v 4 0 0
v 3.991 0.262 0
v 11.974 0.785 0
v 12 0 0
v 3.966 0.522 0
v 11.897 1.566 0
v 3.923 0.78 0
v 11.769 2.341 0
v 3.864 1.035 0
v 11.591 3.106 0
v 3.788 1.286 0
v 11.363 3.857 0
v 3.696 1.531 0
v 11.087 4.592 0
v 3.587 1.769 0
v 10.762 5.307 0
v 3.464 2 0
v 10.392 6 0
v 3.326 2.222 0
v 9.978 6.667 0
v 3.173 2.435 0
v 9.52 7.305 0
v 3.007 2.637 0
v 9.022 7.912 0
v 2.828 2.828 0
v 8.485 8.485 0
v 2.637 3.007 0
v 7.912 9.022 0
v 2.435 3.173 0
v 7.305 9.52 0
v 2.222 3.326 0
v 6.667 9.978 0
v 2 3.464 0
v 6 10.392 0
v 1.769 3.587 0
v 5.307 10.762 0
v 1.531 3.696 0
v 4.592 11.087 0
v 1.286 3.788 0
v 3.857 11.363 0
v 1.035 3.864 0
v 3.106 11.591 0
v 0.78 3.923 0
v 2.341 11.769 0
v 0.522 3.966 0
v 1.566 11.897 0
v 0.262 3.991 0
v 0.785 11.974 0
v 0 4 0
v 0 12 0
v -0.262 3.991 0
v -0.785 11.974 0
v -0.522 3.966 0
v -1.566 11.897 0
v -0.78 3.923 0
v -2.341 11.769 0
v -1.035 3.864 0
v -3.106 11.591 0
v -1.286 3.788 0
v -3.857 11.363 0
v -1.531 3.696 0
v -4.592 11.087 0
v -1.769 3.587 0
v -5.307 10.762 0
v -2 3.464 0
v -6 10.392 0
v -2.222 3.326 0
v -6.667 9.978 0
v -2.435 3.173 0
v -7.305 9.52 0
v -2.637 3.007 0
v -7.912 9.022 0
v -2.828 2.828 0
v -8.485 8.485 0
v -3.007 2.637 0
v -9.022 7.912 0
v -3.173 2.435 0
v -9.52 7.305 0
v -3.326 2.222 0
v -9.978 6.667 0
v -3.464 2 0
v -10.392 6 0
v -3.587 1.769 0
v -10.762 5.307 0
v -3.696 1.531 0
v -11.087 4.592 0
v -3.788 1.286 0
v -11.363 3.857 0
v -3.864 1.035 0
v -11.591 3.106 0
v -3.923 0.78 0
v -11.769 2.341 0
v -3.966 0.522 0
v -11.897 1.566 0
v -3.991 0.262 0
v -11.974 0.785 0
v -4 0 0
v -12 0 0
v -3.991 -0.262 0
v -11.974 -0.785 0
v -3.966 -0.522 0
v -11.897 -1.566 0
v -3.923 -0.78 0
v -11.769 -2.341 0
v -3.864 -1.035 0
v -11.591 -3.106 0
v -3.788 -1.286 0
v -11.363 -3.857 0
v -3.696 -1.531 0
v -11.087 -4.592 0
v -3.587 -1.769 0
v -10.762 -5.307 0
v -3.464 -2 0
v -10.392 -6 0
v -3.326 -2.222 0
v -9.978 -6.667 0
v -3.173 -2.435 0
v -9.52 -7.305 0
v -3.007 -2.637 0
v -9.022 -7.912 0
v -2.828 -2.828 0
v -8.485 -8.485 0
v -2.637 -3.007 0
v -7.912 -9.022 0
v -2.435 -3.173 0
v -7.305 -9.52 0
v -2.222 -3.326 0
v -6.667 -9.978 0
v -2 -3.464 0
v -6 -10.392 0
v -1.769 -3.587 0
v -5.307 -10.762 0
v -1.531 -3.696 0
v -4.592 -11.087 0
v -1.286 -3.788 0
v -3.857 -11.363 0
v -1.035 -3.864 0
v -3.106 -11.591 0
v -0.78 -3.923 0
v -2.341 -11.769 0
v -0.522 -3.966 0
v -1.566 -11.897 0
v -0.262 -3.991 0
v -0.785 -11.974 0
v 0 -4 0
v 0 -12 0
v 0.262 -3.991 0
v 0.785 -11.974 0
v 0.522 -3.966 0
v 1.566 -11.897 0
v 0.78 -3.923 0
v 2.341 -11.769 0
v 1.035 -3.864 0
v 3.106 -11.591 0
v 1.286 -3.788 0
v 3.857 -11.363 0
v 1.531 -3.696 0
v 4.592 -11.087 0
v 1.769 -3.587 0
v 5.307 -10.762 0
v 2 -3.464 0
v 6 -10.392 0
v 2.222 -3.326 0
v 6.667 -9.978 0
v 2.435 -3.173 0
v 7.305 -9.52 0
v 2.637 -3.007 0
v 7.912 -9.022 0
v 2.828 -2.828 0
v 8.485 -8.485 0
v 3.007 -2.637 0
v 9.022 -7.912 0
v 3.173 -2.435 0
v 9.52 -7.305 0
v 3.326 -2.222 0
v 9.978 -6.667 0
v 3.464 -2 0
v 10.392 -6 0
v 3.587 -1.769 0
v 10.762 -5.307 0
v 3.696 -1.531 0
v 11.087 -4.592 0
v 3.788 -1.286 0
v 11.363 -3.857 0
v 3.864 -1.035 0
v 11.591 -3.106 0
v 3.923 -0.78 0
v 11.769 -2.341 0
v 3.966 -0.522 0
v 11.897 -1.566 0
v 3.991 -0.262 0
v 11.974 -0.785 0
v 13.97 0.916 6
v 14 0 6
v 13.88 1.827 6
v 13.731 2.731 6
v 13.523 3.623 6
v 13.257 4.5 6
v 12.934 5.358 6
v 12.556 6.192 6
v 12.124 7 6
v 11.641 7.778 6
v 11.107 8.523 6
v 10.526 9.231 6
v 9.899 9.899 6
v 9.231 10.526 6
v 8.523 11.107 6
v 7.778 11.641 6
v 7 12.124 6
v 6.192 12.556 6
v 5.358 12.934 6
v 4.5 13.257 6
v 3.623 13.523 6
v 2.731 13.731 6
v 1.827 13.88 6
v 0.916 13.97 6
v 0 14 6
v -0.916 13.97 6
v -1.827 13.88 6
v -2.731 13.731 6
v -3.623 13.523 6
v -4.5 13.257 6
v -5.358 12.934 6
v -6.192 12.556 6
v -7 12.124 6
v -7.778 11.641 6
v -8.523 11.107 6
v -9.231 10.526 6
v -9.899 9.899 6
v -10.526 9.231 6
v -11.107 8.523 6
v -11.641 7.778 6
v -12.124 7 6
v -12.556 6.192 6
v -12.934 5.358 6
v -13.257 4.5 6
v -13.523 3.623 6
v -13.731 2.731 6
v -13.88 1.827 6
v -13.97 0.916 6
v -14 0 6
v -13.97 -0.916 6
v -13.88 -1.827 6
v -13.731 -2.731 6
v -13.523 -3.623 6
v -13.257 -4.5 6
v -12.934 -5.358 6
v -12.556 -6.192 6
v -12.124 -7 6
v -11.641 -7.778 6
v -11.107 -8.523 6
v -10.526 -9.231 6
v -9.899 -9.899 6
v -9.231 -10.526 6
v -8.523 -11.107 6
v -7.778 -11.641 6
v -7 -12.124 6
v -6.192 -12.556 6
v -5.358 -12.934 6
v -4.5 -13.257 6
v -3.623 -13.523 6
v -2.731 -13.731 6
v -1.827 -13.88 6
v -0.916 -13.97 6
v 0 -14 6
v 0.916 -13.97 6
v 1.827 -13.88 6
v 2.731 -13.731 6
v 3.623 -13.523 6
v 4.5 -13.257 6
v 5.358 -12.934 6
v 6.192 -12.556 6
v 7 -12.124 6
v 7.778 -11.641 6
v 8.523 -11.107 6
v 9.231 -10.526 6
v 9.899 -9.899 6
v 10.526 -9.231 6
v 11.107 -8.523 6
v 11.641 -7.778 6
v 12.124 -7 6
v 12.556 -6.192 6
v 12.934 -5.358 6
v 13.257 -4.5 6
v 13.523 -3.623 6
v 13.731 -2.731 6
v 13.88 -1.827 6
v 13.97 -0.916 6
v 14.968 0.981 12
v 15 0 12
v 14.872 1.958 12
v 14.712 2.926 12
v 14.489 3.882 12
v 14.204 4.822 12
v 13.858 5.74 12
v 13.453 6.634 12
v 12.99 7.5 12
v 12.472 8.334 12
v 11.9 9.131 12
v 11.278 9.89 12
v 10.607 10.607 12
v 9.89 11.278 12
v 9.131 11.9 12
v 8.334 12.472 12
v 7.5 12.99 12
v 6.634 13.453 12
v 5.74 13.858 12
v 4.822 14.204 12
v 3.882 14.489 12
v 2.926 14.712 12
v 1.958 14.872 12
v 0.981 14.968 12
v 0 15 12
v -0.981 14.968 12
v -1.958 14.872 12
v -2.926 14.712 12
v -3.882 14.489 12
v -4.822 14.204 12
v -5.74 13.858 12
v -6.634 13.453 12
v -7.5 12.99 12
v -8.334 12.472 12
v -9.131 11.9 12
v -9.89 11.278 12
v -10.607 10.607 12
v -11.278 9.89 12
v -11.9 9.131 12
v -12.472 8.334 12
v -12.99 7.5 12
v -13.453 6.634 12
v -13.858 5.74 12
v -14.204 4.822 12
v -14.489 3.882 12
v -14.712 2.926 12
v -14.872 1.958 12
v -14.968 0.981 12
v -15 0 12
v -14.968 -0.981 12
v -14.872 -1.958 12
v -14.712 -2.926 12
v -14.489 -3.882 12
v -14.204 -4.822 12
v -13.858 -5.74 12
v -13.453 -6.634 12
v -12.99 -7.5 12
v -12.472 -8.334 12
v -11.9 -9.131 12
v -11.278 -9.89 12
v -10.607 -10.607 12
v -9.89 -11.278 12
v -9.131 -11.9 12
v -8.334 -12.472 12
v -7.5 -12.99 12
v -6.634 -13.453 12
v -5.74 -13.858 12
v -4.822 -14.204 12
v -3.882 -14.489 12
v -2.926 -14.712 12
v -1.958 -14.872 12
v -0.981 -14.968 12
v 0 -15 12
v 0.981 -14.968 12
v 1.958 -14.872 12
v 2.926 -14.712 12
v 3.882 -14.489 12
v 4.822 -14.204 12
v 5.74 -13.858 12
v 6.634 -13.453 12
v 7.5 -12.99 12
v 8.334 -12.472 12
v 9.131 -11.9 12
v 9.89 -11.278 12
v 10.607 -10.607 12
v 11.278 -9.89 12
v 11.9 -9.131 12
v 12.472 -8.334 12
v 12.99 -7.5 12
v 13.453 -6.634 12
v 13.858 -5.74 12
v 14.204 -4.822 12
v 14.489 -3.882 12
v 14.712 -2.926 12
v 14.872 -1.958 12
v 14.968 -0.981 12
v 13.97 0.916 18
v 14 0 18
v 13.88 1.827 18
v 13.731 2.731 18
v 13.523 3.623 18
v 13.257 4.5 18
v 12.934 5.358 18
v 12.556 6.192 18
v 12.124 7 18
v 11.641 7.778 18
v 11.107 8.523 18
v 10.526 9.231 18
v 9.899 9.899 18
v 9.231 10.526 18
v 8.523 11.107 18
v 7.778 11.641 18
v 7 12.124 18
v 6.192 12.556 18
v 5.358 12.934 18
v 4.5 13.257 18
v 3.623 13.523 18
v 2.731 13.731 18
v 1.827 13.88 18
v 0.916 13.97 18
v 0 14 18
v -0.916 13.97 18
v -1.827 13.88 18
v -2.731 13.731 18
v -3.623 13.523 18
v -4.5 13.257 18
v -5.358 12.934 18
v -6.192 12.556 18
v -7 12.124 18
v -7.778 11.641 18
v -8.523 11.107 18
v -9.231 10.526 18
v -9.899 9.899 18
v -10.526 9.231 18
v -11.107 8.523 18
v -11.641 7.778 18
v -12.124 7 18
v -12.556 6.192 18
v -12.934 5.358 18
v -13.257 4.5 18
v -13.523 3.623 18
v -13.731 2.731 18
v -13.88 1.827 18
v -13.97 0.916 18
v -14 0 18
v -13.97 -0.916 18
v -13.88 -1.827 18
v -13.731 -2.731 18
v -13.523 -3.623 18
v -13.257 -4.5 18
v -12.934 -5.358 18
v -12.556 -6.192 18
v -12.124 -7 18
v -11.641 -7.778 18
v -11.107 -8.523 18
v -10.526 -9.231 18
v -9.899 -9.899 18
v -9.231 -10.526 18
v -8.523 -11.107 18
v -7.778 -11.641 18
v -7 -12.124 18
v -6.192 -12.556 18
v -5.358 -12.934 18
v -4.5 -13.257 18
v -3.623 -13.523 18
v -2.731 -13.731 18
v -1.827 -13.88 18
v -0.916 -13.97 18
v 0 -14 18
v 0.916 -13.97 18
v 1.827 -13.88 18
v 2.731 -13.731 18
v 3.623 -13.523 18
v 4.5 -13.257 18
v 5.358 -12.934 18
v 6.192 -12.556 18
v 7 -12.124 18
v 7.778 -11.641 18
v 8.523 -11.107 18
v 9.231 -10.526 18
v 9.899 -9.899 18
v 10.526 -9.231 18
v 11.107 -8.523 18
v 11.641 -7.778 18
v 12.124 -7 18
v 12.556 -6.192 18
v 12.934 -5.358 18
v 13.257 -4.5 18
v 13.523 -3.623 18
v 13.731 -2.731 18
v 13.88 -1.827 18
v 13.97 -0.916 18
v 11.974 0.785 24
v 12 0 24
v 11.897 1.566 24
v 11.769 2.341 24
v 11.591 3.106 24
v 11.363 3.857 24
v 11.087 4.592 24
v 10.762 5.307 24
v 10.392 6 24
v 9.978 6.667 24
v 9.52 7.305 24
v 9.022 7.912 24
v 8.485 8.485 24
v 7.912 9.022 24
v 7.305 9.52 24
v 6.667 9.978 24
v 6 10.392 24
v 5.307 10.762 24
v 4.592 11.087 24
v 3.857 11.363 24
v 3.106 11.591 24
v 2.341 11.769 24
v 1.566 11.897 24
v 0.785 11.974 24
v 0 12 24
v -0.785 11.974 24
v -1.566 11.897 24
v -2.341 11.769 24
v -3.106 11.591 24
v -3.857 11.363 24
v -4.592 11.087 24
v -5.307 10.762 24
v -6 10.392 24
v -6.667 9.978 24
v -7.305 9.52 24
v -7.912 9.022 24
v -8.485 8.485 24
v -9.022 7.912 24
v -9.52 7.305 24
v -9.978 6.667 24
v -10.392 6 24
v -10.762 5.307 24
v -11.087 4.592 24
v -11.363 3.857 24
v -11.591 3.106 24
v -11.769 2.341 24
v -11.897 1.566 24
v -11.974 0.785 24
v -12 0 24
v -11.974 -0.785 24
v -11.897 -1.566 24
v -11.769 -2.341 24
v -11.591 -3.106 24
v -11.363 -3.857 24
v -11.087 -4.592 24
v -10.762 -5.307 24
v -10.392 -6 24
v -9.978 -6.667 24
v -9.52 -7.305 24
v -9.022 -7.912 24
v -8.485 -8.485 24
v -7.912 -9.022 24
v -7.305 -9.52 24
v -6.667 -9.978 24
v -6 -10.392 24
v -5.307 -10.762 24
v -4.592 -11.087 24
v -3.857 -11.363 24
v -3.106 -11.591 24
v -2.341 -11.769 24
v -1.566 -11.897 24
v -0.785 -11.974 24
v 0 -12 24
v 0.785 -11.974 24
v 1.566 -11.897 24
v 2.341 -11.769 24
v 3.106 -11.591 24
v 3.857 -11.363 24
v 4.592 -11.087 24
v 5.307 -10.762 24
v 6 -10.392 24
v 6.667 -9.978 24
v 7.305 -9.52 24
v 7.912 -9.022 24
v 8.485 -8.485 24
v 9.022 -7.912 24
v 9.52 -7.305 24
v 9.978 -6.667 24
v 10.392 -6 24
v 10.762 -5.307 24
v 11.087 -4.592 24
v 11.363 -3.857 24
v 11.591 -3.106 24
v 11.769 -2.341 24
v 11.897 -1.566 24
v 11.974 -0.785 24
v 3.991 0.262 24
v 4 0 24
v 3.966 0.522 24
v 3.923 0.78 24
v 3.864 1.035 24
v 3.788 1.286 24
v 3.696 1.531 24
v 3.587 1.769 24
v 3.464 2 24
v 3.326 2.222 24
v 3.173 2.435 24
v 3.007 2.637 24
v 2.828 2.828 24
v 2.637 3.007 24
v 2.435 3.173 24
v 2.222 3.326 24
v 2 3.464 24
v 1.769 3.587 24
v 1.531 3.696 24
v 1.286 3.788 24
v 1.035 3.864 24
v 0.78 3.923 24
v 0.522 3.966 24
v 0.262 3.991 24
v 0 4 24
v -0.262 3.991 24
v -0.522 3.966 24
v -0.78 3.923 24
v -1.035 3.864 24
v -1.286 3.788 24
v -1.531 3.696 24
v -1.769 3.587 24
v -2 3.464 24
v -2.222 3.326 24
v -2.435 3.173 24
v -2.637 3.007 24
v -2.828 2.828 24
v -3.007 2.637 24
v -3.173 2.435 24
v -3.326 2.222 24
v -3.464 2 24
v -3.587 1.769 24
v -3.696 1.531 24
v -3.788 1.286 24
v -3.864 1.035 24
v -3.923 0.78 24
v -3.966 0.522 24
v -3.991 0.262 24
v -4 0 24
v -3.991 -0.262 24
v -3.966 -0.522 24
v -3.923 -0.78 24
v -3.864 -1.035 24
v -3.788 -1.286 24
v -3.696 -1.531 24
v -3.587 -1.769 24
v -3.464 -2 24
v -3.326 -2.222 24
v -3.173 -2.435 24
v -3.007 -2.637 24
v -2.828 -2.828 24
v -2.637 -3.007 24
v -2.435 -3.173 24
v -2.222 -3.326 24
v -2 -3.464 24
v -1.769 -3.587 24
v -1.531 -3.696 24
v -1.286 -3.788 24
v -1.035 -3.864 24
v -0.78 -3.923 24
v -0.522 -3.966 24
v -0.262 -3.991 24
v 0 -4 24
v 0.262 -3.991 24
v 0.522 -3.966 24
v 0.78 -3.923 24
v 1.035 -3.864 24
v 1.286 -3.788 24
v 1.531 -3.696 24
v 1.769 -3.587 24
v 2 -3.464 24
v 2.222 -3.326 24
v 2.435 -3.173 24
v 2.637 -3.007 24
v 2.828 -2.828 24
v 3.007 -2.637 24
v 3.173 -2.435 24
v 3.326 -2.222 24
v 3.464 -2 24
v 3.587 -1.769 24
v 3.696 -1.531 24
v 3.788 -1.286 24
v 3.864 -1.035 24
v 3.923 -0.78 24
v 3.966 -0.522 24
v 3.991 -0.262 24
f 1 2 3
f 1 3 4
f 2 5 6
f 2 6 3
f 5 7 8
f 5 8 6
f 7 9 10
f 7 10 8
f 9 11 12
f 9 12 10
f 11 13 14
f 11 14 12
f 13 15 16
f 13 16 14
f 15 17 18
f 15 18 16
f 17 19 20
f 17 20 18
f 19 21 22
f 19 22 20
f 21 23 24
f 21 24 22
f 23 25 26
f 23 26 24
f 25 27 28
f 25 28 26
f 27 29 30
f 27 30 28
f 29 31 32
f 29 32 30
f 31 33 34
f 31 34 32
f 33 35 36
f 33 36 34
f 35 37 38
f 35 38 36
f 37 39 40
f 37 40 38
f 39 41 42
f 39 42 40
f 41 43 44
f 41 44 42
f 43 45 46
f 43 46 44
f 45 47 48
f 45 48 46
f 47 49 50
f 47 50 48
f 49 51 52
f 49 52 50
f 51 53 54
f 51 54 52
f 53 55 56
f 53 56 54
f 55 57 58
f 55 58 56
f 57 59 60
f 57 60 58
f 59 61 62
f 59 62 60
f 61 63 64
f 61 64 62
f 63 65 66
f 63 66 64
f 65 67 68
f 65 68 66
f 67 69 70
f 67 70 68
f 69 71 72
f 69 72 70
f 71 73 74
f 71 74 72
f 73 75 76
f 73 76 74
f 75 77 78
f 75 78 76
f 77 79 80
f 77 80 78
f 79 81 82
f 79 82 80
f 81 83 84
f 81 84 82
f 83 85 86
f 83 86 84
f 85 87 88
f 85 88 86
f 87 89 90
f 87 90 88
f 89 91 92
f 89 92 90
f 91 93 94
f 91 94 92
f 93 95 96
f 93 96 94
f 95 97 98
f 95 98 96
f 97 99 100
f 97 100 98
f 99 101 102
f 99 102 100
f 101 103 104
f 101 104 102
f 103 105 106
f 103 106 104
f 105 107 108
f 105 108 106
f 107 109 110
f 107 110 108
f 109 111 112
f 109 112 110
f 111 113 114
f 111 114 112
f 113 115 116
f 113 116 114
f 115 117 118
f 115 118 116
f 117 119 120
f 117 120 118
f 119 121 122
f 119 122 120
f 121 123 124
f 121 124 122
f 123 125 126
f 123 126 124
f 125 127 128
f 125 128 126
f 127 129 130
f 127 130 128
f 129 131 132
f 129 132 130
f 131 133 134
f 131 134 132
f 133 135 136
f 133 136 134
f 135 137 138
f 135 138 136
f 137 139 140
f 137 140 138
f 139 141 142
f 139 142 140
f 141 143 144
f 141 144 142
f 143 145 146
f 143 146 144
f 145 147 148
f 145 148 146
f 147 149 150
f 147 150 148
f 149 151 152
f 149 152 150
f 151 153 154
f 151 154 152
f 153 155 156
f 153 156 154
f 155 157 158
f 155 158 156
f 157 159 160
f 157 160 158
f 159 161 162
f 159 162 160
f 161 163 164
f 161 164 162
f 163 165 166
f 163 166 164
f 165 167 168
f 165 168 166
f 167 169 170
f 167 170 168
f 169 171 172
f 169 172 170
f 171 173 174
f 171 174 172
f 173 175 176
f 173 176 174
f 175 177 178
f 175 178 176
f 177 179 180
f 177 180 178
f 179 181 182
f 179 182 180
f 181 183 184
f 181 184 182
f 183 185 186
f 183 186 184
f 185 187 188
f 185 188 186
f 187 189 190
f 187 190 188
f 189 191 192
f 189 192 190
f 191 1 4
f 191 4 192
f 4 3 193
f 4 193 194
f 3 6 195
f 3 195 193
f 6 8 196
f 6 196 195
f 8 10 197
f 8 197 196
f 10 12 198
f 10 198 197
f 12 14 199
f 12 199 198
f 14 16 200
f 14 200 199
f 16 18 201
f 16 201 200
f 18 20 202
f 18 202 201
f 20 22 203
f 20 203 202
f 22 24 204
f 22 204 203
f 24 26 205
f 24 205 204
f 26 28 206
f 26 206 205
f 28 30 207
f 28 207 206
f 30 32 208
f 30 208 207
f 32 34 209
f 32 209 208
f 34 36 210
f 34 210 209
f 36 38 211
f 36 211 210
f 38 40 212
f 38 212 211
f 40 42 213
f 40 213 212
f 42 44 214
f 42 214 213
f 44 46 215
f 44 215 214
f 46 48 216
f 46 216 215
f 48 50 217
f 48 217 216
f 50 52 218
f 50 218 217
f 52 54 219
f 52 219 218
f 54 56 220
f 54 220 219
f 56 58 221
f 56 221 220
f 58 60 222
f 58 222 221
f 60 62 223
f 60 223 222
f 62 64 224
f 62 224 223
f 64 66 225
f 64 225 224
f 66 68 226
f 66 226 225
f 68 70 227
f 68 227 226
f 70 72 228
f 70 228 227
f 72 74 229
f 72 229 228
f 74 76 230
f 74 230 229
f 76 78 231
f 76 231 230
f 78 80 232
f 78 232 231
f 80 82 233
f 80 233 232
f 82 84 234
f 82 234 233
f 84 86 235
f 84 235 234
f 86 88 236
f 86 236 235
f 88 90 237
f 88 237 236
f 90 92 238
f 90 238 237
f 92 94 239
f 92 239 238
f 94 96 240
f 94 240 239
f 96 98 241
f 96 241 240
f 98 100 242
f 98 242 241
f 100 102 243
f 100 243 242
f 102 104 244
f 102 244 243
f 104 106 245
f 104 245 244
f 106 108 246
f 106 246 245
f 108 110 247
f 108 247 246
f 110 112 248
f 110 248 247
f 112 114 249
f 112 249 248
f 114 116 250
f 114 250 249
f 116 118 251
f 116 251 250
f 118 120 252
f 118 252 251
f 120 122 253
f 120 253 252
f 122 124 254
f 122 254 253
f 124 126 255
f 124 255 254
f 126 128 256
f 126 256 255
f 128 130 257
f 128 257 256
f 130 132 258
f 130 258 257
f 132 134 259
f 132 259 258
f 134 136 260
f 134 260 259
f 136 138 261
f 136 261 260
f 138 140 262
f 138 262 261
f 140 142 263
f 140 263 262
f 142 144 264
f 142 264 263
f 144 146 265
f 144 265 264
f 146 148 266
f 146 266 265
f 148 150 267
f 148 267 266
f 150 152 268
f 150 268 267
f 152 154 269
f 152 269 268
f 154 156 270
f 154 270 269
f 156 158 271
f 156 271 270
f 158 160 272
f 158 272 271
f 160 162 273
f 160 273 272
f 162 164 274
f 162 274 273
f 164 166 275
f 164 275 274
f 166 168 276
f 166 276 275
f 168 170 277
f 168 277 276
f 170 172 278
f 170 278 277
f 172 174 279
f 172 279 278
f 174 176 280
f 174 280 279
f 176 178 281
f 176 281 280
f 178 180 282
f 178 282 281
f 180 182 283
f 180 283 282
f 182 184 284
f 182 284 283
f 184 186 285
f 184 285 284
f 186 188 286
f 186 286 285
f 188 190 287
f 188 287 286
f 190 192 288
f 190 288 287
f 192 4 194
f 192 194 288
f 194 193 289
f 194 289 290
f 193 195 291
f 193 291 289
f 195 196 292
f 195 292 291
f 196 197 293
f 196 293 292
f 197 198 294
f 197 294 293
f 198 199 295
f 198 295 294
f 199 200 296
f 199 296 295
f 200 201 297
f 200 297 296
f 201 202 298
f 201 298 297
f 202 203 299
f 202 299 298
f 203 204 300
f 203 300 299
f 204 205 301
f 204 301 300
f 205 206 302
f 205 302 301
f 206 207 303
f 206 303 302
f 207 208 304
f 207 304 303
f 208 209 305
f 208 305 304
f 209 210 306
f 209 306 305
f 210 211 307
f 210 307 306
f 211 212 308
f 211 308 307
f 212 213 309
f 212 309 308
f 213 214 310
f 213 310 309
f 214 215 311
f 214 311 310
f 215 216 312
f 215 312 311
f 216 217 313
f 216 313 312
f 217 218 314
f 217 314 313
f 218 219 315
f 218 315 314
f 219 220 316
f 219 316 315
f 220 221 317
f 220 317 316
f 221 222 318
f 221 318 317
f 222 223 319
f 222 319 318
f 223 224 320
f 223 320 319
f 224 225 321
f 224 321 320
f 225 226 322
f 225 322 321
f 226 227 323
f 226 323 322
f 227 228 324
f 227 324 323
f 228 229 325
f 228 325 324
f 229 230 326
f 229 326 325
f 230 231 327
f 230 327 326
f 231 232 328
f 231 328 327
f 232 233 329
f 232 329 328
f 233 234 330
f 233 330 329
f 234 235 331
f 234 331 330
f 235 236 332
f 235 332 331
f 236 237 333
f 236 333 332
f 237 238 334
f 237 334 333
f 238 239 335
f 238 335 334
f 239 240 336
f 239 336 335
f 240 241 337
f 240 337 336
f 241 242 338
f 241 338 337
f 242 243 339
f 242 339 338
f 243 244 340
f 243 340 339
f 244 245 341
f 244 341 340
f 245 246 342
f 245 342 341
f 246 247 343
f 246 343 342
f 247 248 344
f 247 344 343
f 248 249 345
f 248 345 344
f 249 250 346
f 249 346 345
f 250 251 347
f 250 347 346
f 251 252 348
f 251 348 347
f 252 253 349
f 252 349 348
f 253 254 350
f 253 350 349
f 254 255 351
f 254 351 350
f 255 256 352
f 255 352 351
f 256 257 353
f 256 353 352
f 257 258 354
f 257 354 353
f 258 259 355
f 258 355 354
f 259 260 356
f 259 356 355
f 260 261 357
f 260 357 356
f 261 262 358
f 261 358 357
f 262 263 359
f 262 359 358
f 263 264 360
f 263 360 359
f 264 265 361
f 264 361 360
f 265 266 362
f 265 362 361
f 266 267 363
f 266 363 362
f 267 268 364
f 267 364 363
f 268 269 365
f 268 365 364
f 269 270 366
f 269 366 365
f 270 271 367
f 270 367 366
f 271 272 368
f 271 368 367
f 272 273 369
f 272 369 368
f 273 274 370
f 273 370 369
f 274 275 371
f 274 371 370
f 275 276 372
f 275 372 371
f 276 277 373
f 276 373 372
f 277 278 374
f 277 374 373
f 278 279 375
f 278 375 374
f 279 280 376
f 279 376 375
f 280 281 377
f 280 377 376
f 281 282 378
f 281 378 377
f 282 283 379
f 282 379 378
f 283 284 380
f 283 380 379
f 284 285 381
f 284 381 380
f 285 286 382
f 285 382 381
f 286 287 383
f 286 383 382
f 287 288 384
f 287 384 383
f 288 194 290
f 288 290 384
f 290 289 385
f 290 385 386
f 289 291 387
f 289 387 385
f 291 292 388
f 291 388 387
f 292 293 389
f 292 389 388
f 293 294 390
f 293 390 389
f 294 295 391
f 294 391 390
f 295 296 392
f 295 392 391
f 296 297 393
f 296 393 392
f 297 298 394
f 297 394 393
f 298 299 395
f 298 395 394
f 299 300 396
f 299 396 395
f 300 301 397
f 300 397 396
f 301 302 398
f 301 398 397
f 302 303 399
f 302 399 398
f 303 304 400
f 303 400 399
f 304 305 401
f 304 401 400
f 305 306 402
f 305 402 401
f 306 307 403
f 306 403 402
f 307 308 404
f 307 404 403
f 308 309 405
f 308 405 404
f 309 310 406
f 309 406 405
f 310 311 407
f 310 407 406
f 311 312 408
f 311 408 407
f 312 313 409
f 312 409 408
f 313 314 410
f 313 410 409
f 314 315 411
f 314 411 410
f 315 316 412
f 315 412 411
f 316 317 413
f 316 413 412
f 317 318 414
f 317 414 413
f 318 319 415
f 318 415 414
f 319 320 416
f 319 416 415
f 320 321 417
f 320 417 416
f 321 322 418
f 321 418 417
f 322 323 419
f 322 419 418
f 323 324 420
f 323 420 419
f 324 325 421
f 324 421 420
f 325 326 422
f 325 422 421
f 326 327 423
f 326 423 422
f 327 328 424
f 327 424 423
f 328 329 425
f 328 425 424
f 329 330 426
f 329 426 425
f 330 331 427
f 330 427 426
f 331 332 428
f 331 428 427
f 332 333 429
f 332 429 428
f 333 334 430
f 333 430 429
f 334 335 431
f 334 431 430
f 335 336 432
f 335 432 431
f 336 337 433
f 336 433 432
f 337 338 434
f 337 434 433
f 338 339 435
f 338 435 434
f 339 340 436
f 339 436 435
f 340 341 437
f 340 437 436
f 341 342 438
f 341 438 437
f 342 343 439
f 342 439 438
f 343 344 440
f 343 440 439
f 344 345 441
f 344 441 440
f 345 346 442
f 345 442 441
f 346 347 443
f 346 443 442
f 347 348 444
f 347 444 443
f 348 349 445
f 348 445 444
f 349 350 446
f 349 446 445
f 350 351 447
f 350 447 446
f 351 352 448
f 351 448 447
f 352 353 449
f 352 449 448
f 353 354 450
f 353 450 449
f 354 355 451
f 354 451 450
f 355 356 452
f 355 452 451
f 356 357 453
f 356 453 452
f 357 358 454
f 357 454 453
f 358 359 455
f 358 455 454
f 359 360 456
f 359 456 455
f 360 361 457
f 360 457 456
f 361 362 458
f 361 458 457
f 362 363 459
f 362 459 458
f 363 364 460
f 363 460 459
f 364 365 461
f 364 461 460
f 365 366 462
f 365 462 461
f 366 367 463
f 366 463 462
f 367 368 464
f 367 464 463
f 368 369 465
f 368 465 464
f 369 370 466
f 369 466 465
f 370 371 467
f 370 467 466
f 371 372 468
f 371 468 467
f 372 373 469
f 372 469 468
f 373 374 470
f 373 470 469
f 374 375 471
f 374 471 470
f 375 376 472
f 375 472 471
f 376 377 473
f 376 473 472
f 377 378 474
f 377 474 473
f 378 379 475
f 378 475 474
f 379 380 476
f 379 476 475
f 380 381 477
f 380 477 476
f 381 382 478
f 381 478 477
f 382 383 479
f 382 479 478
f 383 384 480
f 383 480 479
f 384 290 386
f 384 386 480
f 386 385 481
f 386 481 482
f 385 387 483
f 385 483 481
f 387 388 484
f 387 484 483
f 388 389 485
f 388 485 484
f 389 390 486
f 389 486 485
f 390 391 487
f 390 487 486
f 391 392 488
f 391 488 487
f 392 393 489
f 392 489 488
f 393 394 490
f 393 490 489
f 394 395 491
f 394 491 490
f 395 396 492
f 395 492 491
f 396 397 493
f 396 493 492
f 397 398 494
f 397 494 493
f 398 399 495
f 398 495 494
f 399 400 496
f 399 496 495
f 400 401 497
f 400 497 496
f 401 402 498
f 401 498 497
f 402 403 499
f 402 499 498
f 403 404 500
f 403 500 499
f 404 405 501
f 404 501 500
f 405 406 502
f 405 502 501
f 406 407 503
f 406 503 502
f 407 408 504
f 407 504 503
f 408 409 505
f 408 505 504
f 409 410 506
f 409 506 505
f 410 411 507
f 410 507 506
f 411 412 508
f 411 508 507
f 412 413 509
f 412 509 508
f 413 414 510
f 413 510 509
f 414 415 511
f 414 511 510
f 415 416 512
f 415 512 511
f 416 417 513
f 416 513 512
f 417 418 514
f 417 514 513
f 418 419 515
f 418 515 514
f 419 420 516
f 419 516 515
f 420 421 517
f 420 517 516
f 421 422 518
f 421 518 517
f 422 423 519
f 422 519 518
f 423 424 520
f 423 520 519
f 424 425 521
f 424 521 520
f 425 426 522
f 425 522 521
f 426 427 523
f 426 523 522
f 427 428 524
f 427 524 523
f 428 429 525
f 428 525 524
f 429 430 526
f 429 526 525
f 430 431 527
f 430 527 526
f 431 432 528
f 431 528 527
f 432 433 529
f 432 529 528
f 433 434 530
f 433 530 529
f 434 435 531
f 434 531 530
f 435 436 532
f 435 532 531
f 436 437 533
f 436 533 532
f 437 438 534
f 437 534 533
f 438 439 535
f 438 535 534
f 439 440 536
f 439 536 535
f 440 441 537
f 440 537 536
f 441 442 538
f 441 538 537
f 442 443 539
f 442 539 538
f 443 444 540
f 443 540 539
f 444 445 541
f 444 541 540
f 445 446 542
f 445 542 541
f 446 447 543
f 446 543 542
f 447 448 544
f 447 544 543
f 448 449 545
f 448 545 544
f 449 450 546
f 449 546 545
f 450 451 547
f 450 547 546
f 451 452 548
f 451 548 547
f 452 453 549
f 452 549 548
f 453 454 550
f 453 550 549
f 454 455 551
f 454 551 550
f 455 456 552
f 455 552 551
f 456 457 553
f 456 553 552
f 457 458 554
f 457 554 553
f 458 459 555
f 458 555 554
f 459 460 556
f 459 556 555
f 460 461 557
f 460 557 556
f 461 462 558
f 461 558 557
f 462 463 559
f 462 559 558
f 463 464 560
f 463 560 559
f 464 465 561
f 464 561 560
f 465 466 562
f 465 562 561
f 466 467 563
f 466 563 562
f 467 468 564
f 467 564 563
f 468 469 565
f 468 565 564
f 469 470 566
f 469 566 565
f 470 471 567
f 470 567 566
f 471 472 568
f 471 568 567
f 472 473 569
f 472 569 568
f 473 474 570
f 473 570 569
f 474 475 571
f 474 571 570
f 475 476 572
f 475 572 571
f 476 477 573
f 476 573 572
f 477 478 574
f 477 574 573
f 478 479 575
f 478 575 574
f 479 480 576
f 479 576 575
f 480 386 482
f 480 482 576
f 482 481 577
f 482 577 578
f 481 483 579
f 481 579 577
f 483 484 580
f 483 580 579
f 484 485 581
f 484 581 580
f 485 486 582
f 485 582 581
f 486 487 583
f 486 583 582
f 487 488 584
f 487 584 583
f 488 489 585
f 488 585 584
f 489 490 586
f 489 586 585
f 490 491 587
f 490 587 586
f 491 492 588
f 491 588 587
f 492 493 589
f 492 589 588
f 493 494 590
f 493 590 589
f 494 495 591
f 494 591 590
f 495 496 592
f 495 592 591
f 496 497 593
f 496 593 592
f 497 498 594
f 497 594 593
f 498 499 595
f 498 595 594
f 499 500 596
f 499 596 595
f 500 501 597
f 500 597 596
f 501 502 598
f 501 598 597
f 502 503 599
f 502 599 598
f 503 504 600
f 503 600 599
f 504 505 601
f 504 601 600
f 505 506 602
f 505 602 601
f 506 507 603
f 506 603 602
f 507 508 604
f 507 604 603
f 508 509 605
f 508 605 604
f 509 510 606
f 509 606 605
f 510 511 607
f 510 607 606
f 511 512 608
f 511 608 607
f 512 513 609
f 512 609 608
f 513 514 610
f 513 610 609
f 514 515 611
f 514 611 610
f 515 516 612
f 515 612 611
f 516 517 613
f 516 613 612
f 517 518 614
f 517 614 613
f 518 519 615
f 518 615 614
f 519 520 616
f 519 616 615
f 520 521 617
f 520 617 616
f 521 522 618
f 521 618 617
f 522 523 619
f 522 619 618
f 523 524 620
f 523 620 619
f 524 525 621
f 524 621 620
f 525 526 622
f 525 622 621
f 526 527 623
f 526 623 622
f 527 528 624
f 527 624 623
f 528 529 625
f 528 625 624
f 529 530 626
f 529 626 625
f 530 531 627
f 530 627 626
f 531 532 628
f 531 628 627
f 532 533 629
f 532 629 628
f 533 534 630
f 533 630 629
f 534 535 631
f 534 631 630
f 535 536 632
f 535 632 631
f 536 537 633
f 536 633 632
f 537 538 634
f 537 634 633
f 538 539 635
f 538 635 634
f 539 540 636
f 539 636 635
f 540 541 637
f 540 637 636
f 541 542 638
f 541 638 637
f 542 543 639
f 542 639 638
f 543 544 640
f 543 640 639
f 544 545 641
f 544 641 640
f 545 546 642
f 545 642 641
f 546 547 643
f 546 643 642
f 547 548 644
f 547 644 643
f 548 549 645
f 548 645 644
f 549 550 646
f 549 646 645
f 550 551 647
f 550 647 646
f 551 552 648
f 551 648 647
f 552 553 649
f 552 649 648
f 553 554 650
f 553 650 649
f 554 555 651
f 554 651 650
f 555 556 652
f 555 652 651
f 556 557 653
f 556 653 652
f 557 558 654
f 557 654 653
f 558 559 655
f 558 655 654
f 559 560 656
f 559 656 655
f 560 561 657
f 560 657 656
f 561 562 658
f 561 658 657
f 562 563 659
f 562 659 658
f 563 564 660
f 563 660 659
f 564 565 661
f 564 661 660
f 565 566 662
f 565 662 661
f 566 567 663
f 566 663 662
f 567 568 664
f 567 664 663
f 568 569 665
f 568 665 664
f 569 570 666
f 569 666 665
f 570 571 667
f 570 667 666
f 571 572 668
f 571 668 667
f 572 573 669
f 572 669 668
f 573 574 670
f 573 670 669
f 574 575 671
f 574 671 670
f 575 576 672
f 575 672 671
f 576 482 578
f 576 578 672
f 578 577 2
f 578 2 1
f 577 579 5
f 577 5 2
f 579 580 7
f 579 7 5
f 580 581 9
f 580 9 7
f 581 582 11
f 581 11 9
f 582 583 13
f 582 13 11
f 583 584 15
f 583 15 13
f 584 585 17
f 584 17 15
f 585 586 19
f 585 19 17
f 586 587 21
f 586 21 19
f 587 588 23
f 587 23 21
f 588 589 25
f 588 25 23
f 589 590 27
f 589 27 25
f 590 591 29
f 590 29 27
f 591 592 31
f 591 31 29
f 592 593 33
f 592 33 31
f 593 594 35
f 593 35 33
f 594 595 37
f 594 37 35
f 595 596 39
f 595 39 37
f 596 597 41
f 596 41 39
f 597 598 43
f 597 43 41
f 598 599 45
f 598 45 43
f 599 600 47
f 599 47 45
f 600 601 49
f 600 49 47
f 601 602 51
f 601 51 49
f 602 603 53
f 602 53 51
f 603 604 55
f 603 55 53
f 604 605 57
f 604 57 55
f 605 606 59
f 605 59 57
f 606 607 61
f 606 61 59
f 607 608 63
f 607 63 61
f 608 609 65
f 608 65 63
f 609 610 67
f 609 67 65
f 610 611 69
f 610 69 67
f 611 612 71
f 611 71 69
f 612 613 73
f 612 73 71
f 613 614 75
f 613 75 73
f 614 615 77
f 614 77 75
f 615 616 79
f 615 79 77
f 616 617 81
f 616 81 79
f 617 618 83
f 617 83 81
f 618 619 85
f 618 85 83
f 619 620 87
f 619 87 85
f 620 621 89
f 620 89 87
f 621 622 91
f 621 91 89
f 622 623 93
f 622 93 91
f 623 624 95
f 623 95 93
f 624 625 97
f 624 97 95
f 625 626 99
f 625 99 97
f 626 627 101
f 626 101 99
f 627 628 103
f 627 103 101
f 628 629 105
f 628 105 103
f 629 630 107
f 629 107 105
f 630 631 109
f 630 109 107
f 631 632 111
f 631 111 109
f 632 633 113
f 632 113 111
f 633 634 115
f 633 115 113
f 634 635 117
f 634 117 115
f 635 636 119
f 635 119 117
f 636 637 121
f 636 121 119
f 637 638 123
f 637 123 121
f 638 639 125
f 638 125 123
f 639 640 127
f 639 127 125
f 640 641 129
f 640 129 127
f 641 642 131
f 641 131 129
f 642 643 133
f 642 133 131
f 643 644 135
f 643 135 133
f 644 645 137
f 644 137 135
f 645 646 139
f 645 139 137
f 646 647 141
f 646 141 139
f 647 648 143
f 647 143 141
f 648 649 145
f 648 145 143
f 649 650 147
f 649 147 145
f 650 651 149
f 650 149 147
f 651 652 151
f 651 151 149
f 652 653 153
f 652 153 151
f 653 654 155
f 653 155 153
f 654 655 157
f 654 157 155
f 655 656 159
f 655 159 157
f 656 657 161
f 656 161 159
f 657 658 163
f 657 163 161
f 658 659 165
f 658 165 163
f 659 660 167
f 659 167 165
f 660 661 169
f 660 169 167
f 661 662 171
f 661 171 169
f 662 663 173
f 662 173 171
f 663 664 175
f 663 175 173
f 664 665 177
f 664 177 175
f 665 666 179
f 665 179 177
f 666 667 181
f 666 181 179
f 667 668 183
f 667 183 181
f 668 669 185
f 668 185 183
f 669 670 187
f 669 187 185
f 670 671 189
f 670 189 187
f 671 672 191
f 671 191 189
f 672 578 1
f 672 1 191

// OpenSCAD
// Original MechIntel educational model. CC0-1.0. Units: mm.
// Not a standardized or load-rated component.
$fn=96;
// Section points: [radius, height], mm. Edit to change the profile.
section=[[4, 0], [12, 0], [14, 6], [15, 12], [14, 18], [12, 24], [4, 24]];
rotate_extrude($fn=96) polygon(points=section);
